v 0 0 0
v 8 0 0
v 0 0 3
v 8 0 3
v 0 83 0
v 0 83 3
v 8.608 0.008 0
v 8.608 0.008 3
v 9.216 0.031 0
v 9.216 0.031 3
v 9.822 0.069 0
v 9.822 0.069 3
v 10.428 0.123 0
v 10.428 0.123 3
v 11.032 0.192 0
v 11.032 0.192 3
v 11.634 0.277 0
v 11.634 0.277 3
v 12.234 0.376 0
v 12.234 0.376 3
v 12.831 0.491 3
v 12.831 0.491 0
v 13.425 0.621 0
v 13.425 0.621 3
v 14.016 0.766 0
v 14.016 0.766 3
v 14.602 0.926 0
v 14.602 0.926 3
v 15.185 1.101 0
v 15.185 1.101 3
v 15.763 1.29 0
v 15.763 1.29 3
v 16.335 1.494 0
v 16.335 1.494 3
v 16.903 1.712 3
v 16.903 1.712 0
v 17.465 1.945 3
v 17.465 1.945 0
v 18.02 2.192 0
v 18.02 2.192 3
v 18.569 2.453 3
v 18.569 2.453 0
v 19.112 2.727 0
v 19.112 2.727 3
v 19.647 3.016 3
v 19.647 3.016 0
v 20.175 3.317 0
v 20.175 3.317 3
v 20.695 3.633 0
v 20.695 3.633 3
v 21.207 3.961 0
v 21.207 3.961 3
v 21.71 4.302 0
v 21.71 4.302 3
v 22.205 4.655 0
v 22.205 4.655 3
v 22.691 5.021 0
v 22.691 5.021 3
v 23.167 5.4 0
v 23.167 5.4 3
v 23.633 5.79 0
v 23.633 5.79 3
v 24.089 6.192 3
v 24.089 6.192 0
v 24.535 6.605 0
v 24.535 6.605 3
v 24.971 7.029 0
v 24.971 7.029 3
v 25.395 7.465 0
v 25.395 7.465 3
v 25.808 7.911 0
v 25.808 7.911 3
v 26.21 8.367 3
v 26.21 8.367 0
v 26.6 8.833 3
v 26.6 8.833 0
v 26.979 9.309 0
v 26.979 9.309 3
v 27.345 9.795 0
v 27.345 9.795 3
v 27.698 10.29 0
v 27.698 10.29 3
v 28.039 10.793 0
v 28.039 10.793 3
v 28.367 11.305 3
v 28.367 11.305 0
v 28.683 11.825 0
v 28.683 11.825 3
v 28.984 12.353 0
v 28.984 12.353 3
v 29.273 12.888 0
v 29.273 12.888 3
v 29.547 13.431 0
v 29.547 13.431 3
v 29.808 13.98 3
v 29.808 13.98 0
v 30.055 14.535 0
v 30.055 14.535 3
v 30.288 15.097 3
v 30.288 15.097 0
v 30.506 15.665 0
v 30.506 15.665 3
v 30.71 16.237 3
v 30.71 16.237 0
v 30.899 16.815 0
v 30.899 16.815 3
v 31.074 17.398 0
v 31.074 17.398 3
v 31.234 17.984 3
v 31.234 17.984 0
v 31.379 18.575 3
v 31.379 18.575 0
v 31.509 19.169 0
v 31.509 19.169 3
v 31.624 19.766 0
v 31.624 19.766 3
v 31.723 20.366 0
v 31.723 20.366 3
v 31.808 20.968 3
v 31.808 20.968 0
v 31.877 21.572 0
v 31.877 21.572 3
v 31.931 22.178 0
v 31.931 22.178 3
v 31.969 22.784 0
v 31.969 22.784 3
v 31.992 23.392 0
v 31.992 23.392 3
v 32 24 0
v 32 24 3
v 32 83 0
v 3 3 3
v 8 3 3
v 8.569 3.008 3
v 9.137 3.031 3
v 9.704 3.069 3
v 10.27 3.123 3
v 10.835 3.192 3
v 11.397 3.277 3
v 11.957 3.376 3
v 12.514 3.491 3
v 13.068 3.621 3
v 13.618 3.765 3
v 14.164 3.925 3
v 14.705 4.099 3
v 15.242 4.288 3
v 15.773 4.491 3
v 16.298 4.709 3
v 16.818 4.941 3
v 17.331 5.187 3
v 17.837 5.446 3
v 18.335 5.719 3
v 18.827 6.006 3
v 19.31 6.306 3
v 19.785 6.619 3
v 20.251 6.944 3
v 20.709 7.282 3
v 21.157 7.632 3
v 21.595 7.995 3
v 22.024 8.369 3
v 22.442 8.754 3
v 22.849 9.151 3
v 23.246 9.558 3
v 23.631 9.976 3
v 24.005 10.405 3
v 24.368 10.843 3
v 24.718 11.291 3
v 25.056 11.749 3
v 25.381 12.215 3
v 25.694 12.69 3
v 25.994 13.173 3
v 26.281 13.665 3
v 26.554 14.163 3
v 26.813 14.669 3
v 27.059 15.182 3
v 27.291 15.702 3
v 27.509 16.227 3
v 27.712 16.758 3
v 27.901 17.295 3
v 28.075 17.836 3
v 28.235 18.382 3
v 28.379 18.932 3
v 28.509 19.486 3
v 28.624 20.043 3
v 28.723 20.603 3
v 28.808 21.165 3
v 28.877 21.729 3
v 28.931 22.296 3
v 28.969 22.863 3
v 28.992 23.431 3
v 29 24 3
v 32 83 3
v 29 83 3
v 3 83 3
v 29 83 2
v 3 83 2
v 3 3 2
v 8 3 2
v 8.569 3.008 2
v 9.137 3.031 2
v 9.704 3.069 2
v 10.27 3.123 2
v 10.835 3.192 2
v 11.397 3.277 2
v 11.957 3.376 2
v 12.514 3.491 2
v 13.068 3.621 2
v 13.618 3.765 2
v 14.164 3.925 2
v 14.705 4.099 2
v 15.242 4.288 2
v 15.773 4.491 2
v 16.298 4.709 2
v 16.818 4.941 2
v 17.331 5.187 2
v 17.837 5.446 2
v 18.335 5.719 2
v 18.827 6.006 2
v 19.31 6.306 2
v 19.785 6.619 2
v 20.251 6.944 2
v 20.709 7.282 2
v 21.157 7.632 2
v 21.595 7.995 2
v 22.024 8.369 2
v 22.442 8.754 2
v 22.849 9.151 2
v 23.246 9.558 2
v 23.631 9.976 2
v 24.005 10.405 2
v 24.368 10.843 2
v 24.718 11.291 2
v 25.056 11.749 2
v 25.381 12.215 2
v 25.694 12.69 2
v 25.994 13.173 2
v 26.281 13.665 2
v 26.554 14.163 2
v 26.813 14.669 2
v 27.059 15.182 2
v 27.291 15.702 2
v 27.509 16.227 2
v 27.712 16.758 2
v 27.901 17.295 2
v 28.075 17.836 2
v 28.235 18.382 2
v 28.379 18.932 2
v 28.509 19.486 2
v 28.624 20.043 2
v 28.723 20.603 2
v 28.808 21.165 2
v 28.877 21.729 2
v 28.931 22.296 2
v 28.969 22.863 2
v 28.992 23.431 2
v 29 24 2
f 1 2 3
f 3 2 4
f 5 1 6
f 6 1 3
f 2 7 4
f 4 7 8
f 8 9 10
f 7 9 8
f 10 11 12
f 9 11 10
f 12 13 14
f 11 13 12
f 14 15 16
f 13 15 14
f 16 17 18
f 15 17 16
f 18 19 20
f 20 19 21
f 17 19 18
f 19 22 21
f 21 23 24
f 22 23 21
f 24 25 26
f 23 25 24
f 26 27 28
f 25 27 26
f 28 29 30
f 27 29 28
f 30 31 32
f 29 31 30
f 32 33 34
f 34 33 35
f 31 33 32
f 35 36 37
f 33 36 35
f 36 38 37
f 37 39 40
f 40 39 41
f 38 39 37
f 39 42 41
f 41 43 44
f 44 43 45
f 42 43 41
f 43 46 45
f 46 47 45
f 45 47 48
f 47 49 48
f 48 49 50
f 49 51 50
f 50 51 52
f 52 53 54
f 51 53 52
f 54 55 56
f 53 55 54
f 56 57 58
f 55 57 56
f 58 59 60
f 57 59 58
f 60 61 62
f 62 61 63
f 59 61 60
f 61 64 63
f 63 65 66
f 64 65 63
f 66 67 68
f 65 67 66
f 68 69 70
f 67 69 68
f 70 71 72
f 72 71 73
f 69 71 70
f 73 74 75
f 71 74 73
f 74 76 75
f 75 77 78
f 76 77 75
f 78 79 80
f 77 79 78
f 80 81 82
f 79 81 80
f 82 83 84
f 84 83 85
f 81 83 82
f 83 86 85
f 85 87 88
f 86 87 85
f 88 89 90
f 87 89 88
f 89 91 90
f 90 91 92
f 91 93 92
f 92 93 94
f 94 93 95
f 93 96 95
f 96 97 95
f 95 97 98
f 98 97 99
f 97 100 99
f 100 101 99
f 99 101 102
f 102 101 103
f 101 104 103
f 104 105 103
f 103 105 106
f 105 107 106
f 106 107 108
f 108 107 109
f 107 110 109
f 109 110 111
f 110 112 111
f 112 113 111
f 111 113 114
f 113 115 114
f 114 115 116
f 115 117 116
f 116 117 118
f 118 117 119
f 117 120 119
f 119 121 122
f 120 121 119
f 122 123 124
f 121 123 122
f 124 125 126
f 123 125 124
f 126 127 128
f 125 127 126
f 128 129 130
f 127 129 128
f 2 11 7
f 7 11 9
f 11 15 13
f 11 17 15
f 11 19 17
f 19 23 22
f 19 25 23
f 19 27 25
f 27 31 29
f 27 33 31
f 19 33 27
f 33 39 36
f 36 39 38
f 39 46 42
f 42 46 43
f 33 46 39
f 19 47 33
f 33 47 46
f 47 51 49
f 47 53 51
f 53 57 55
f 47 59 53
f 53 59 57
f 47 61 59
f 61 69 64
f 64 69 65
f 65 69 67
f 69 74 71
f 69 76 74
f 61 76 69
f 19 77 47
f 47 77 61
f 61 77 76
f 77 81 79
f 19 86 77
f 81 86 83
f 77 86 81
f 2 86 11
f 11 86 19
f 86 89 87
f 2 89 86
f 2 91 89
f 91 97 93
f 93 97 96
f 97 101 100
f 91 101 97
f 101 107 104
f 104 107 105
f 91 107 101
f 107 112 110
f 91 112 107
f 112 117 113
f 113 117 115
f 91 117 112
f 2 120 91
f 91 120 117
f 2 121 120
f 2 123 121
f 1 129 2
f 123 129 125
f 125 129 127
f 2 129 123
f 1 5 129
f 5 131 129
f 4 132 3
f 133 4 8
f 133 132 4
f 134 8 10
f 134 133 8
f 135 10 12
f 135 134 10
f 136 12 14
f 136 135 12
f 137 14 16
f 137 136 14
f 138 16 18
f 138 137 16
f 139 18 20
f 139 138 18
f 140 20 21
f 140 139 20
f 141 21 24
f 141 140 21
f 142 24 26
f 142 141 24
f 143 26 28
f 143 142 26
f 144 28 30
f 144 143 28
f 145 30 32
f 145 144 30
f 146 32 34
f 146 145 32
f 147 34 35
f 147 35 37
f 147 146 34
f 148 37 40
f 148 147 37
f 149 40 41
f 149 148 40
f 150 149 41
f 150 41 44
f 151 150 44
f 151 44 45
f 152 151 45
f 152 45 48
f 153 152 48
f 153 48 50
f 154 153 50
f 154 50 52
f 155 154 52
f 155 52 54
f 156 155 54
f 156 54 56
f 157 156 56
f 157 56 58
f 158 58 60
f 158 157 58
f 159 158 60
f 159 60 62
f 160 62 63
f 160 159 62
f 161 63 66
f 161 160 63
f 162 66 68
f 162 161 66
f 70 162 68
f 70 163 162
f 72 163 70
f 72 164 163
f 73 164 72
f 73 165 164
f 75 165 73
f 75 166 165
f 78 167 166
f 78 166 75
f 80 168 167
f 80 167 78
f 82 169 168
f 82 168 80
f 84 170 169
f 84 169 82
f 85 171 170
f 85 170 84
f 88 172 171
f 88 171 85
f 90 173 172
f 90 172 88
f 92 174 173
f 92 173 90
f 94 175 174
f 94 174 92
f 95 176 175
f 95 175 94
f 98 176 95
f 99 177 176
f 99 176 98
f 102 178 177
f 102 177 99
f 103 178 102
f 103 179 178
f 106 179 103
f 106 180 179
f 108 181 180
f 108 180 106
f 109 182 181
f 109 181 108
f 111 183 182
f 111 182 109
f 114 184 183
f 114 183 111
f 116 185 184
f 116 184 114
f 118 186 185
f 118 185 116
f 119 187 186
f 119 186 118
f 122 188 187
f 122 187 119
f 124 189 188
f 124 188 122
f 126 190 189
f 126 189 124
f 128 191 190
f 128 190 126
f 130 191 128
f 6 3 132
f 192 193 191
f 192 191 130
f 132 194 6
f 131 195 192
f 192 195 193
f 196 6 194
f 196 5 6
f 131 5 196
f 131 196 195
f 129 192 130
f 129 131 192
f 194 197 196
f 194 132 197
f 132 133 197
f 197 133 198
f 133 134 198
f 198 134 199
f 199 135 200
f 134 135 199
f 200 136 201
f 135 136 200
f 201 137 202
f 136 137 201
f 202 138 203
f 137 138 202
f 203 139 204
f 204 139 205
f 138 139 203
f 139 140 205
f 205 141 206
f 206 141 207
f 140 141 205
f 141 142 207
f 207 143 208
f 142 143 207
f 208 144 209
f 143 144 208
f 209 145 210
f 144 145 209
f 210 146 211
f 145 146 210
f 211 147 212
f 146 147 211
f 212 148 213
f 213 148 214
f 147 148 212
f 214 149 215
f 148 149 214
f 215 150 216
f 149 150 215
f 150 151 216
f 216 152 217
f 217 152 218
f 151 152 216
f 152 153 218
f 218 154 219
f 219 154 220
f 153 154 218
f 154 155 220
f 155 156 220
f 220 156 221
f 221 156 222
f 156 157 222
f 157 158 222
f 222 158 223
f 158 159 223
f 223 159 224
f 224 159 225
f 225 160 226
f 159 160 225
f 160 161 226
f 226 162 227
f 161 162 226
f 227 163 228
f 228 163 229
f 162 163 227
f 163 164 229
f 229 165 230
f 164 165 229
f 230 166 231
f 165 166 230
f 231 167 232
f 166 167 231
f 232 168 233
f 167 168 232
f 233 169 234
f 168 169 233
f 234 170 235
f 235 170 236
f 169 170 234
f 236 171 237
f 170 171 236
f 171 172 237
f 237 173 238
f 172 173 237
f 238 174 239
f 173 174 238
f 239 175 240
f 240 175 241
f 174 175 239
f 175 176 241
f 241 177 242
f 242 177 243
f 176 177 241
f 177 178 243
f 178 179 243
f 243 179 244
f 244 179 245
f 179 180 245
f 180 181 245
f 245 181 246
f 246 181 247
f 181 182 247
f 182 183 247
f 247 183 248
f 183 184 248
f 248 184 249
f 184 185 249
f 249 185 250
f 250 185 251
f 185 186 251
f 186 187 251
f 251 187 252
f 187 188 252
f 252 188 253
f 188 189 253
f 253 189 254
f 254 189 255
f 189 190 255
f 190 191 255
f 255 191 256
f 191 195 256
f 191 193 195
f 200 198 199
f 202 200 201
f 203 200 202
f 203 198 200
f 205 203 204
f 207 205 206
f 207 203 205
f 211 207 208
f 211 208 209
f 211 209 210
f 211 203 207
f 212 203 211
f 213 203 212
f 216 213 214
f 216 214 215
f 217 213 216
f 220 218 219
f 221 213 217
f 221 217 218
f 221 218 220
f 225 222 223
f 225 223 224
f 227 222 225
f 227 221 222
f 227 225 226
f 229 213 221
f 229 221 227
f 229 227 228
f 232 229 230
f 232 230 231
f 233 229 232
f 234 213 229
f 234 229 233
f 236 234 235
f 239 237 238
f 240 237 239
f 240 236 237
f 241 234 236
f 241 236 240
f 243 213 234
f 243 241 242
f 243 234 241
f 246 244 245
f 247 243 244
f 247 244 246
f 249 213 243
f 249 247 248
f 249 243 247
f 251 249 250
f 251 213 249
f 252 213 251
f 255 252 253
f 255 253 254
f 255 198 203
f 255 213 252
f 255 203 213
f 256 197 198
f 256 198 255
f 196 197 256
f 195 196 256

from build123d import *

# Parameters (mm, degrees)
PAD_DEPTH    = 3
POCKET_DEPTH = 1


with BuildPart() as part:
    # Sketch → Pad (new body)
    with BuildSketch(Plane.XY):
        with BuildLine():
            Line((0, 0), (8, 0))
            ThreePointArc((8, 0), (24.970563, 7.029437), (32, 24))
            Line((32, 24), (32, 83))
            Line((32, 83), (0, 83))
            Line((0, 83), (0, 0))
        make_face()
    extrude(amount=PAD_DEPTH)

    # Sketch001 (on Face7 of Pad) → Pocket (cut)
    with BuildSketch(Plane.XY.offset(3)):
        with BuildLine():
            Line((3, 84), (3, 3))
            Line((3, 3), (8, 3))
            ThreePointArc((8, 3), (22.849242, 9.150758), (29, 24))
            Line((29, 24), (29, 84))
            Line((29, 84), (3, 84))
        make_face()
    extrude(amount=-POCKET_DEPTH, mode=Mode.SUBTRACT)


solid = part.part
